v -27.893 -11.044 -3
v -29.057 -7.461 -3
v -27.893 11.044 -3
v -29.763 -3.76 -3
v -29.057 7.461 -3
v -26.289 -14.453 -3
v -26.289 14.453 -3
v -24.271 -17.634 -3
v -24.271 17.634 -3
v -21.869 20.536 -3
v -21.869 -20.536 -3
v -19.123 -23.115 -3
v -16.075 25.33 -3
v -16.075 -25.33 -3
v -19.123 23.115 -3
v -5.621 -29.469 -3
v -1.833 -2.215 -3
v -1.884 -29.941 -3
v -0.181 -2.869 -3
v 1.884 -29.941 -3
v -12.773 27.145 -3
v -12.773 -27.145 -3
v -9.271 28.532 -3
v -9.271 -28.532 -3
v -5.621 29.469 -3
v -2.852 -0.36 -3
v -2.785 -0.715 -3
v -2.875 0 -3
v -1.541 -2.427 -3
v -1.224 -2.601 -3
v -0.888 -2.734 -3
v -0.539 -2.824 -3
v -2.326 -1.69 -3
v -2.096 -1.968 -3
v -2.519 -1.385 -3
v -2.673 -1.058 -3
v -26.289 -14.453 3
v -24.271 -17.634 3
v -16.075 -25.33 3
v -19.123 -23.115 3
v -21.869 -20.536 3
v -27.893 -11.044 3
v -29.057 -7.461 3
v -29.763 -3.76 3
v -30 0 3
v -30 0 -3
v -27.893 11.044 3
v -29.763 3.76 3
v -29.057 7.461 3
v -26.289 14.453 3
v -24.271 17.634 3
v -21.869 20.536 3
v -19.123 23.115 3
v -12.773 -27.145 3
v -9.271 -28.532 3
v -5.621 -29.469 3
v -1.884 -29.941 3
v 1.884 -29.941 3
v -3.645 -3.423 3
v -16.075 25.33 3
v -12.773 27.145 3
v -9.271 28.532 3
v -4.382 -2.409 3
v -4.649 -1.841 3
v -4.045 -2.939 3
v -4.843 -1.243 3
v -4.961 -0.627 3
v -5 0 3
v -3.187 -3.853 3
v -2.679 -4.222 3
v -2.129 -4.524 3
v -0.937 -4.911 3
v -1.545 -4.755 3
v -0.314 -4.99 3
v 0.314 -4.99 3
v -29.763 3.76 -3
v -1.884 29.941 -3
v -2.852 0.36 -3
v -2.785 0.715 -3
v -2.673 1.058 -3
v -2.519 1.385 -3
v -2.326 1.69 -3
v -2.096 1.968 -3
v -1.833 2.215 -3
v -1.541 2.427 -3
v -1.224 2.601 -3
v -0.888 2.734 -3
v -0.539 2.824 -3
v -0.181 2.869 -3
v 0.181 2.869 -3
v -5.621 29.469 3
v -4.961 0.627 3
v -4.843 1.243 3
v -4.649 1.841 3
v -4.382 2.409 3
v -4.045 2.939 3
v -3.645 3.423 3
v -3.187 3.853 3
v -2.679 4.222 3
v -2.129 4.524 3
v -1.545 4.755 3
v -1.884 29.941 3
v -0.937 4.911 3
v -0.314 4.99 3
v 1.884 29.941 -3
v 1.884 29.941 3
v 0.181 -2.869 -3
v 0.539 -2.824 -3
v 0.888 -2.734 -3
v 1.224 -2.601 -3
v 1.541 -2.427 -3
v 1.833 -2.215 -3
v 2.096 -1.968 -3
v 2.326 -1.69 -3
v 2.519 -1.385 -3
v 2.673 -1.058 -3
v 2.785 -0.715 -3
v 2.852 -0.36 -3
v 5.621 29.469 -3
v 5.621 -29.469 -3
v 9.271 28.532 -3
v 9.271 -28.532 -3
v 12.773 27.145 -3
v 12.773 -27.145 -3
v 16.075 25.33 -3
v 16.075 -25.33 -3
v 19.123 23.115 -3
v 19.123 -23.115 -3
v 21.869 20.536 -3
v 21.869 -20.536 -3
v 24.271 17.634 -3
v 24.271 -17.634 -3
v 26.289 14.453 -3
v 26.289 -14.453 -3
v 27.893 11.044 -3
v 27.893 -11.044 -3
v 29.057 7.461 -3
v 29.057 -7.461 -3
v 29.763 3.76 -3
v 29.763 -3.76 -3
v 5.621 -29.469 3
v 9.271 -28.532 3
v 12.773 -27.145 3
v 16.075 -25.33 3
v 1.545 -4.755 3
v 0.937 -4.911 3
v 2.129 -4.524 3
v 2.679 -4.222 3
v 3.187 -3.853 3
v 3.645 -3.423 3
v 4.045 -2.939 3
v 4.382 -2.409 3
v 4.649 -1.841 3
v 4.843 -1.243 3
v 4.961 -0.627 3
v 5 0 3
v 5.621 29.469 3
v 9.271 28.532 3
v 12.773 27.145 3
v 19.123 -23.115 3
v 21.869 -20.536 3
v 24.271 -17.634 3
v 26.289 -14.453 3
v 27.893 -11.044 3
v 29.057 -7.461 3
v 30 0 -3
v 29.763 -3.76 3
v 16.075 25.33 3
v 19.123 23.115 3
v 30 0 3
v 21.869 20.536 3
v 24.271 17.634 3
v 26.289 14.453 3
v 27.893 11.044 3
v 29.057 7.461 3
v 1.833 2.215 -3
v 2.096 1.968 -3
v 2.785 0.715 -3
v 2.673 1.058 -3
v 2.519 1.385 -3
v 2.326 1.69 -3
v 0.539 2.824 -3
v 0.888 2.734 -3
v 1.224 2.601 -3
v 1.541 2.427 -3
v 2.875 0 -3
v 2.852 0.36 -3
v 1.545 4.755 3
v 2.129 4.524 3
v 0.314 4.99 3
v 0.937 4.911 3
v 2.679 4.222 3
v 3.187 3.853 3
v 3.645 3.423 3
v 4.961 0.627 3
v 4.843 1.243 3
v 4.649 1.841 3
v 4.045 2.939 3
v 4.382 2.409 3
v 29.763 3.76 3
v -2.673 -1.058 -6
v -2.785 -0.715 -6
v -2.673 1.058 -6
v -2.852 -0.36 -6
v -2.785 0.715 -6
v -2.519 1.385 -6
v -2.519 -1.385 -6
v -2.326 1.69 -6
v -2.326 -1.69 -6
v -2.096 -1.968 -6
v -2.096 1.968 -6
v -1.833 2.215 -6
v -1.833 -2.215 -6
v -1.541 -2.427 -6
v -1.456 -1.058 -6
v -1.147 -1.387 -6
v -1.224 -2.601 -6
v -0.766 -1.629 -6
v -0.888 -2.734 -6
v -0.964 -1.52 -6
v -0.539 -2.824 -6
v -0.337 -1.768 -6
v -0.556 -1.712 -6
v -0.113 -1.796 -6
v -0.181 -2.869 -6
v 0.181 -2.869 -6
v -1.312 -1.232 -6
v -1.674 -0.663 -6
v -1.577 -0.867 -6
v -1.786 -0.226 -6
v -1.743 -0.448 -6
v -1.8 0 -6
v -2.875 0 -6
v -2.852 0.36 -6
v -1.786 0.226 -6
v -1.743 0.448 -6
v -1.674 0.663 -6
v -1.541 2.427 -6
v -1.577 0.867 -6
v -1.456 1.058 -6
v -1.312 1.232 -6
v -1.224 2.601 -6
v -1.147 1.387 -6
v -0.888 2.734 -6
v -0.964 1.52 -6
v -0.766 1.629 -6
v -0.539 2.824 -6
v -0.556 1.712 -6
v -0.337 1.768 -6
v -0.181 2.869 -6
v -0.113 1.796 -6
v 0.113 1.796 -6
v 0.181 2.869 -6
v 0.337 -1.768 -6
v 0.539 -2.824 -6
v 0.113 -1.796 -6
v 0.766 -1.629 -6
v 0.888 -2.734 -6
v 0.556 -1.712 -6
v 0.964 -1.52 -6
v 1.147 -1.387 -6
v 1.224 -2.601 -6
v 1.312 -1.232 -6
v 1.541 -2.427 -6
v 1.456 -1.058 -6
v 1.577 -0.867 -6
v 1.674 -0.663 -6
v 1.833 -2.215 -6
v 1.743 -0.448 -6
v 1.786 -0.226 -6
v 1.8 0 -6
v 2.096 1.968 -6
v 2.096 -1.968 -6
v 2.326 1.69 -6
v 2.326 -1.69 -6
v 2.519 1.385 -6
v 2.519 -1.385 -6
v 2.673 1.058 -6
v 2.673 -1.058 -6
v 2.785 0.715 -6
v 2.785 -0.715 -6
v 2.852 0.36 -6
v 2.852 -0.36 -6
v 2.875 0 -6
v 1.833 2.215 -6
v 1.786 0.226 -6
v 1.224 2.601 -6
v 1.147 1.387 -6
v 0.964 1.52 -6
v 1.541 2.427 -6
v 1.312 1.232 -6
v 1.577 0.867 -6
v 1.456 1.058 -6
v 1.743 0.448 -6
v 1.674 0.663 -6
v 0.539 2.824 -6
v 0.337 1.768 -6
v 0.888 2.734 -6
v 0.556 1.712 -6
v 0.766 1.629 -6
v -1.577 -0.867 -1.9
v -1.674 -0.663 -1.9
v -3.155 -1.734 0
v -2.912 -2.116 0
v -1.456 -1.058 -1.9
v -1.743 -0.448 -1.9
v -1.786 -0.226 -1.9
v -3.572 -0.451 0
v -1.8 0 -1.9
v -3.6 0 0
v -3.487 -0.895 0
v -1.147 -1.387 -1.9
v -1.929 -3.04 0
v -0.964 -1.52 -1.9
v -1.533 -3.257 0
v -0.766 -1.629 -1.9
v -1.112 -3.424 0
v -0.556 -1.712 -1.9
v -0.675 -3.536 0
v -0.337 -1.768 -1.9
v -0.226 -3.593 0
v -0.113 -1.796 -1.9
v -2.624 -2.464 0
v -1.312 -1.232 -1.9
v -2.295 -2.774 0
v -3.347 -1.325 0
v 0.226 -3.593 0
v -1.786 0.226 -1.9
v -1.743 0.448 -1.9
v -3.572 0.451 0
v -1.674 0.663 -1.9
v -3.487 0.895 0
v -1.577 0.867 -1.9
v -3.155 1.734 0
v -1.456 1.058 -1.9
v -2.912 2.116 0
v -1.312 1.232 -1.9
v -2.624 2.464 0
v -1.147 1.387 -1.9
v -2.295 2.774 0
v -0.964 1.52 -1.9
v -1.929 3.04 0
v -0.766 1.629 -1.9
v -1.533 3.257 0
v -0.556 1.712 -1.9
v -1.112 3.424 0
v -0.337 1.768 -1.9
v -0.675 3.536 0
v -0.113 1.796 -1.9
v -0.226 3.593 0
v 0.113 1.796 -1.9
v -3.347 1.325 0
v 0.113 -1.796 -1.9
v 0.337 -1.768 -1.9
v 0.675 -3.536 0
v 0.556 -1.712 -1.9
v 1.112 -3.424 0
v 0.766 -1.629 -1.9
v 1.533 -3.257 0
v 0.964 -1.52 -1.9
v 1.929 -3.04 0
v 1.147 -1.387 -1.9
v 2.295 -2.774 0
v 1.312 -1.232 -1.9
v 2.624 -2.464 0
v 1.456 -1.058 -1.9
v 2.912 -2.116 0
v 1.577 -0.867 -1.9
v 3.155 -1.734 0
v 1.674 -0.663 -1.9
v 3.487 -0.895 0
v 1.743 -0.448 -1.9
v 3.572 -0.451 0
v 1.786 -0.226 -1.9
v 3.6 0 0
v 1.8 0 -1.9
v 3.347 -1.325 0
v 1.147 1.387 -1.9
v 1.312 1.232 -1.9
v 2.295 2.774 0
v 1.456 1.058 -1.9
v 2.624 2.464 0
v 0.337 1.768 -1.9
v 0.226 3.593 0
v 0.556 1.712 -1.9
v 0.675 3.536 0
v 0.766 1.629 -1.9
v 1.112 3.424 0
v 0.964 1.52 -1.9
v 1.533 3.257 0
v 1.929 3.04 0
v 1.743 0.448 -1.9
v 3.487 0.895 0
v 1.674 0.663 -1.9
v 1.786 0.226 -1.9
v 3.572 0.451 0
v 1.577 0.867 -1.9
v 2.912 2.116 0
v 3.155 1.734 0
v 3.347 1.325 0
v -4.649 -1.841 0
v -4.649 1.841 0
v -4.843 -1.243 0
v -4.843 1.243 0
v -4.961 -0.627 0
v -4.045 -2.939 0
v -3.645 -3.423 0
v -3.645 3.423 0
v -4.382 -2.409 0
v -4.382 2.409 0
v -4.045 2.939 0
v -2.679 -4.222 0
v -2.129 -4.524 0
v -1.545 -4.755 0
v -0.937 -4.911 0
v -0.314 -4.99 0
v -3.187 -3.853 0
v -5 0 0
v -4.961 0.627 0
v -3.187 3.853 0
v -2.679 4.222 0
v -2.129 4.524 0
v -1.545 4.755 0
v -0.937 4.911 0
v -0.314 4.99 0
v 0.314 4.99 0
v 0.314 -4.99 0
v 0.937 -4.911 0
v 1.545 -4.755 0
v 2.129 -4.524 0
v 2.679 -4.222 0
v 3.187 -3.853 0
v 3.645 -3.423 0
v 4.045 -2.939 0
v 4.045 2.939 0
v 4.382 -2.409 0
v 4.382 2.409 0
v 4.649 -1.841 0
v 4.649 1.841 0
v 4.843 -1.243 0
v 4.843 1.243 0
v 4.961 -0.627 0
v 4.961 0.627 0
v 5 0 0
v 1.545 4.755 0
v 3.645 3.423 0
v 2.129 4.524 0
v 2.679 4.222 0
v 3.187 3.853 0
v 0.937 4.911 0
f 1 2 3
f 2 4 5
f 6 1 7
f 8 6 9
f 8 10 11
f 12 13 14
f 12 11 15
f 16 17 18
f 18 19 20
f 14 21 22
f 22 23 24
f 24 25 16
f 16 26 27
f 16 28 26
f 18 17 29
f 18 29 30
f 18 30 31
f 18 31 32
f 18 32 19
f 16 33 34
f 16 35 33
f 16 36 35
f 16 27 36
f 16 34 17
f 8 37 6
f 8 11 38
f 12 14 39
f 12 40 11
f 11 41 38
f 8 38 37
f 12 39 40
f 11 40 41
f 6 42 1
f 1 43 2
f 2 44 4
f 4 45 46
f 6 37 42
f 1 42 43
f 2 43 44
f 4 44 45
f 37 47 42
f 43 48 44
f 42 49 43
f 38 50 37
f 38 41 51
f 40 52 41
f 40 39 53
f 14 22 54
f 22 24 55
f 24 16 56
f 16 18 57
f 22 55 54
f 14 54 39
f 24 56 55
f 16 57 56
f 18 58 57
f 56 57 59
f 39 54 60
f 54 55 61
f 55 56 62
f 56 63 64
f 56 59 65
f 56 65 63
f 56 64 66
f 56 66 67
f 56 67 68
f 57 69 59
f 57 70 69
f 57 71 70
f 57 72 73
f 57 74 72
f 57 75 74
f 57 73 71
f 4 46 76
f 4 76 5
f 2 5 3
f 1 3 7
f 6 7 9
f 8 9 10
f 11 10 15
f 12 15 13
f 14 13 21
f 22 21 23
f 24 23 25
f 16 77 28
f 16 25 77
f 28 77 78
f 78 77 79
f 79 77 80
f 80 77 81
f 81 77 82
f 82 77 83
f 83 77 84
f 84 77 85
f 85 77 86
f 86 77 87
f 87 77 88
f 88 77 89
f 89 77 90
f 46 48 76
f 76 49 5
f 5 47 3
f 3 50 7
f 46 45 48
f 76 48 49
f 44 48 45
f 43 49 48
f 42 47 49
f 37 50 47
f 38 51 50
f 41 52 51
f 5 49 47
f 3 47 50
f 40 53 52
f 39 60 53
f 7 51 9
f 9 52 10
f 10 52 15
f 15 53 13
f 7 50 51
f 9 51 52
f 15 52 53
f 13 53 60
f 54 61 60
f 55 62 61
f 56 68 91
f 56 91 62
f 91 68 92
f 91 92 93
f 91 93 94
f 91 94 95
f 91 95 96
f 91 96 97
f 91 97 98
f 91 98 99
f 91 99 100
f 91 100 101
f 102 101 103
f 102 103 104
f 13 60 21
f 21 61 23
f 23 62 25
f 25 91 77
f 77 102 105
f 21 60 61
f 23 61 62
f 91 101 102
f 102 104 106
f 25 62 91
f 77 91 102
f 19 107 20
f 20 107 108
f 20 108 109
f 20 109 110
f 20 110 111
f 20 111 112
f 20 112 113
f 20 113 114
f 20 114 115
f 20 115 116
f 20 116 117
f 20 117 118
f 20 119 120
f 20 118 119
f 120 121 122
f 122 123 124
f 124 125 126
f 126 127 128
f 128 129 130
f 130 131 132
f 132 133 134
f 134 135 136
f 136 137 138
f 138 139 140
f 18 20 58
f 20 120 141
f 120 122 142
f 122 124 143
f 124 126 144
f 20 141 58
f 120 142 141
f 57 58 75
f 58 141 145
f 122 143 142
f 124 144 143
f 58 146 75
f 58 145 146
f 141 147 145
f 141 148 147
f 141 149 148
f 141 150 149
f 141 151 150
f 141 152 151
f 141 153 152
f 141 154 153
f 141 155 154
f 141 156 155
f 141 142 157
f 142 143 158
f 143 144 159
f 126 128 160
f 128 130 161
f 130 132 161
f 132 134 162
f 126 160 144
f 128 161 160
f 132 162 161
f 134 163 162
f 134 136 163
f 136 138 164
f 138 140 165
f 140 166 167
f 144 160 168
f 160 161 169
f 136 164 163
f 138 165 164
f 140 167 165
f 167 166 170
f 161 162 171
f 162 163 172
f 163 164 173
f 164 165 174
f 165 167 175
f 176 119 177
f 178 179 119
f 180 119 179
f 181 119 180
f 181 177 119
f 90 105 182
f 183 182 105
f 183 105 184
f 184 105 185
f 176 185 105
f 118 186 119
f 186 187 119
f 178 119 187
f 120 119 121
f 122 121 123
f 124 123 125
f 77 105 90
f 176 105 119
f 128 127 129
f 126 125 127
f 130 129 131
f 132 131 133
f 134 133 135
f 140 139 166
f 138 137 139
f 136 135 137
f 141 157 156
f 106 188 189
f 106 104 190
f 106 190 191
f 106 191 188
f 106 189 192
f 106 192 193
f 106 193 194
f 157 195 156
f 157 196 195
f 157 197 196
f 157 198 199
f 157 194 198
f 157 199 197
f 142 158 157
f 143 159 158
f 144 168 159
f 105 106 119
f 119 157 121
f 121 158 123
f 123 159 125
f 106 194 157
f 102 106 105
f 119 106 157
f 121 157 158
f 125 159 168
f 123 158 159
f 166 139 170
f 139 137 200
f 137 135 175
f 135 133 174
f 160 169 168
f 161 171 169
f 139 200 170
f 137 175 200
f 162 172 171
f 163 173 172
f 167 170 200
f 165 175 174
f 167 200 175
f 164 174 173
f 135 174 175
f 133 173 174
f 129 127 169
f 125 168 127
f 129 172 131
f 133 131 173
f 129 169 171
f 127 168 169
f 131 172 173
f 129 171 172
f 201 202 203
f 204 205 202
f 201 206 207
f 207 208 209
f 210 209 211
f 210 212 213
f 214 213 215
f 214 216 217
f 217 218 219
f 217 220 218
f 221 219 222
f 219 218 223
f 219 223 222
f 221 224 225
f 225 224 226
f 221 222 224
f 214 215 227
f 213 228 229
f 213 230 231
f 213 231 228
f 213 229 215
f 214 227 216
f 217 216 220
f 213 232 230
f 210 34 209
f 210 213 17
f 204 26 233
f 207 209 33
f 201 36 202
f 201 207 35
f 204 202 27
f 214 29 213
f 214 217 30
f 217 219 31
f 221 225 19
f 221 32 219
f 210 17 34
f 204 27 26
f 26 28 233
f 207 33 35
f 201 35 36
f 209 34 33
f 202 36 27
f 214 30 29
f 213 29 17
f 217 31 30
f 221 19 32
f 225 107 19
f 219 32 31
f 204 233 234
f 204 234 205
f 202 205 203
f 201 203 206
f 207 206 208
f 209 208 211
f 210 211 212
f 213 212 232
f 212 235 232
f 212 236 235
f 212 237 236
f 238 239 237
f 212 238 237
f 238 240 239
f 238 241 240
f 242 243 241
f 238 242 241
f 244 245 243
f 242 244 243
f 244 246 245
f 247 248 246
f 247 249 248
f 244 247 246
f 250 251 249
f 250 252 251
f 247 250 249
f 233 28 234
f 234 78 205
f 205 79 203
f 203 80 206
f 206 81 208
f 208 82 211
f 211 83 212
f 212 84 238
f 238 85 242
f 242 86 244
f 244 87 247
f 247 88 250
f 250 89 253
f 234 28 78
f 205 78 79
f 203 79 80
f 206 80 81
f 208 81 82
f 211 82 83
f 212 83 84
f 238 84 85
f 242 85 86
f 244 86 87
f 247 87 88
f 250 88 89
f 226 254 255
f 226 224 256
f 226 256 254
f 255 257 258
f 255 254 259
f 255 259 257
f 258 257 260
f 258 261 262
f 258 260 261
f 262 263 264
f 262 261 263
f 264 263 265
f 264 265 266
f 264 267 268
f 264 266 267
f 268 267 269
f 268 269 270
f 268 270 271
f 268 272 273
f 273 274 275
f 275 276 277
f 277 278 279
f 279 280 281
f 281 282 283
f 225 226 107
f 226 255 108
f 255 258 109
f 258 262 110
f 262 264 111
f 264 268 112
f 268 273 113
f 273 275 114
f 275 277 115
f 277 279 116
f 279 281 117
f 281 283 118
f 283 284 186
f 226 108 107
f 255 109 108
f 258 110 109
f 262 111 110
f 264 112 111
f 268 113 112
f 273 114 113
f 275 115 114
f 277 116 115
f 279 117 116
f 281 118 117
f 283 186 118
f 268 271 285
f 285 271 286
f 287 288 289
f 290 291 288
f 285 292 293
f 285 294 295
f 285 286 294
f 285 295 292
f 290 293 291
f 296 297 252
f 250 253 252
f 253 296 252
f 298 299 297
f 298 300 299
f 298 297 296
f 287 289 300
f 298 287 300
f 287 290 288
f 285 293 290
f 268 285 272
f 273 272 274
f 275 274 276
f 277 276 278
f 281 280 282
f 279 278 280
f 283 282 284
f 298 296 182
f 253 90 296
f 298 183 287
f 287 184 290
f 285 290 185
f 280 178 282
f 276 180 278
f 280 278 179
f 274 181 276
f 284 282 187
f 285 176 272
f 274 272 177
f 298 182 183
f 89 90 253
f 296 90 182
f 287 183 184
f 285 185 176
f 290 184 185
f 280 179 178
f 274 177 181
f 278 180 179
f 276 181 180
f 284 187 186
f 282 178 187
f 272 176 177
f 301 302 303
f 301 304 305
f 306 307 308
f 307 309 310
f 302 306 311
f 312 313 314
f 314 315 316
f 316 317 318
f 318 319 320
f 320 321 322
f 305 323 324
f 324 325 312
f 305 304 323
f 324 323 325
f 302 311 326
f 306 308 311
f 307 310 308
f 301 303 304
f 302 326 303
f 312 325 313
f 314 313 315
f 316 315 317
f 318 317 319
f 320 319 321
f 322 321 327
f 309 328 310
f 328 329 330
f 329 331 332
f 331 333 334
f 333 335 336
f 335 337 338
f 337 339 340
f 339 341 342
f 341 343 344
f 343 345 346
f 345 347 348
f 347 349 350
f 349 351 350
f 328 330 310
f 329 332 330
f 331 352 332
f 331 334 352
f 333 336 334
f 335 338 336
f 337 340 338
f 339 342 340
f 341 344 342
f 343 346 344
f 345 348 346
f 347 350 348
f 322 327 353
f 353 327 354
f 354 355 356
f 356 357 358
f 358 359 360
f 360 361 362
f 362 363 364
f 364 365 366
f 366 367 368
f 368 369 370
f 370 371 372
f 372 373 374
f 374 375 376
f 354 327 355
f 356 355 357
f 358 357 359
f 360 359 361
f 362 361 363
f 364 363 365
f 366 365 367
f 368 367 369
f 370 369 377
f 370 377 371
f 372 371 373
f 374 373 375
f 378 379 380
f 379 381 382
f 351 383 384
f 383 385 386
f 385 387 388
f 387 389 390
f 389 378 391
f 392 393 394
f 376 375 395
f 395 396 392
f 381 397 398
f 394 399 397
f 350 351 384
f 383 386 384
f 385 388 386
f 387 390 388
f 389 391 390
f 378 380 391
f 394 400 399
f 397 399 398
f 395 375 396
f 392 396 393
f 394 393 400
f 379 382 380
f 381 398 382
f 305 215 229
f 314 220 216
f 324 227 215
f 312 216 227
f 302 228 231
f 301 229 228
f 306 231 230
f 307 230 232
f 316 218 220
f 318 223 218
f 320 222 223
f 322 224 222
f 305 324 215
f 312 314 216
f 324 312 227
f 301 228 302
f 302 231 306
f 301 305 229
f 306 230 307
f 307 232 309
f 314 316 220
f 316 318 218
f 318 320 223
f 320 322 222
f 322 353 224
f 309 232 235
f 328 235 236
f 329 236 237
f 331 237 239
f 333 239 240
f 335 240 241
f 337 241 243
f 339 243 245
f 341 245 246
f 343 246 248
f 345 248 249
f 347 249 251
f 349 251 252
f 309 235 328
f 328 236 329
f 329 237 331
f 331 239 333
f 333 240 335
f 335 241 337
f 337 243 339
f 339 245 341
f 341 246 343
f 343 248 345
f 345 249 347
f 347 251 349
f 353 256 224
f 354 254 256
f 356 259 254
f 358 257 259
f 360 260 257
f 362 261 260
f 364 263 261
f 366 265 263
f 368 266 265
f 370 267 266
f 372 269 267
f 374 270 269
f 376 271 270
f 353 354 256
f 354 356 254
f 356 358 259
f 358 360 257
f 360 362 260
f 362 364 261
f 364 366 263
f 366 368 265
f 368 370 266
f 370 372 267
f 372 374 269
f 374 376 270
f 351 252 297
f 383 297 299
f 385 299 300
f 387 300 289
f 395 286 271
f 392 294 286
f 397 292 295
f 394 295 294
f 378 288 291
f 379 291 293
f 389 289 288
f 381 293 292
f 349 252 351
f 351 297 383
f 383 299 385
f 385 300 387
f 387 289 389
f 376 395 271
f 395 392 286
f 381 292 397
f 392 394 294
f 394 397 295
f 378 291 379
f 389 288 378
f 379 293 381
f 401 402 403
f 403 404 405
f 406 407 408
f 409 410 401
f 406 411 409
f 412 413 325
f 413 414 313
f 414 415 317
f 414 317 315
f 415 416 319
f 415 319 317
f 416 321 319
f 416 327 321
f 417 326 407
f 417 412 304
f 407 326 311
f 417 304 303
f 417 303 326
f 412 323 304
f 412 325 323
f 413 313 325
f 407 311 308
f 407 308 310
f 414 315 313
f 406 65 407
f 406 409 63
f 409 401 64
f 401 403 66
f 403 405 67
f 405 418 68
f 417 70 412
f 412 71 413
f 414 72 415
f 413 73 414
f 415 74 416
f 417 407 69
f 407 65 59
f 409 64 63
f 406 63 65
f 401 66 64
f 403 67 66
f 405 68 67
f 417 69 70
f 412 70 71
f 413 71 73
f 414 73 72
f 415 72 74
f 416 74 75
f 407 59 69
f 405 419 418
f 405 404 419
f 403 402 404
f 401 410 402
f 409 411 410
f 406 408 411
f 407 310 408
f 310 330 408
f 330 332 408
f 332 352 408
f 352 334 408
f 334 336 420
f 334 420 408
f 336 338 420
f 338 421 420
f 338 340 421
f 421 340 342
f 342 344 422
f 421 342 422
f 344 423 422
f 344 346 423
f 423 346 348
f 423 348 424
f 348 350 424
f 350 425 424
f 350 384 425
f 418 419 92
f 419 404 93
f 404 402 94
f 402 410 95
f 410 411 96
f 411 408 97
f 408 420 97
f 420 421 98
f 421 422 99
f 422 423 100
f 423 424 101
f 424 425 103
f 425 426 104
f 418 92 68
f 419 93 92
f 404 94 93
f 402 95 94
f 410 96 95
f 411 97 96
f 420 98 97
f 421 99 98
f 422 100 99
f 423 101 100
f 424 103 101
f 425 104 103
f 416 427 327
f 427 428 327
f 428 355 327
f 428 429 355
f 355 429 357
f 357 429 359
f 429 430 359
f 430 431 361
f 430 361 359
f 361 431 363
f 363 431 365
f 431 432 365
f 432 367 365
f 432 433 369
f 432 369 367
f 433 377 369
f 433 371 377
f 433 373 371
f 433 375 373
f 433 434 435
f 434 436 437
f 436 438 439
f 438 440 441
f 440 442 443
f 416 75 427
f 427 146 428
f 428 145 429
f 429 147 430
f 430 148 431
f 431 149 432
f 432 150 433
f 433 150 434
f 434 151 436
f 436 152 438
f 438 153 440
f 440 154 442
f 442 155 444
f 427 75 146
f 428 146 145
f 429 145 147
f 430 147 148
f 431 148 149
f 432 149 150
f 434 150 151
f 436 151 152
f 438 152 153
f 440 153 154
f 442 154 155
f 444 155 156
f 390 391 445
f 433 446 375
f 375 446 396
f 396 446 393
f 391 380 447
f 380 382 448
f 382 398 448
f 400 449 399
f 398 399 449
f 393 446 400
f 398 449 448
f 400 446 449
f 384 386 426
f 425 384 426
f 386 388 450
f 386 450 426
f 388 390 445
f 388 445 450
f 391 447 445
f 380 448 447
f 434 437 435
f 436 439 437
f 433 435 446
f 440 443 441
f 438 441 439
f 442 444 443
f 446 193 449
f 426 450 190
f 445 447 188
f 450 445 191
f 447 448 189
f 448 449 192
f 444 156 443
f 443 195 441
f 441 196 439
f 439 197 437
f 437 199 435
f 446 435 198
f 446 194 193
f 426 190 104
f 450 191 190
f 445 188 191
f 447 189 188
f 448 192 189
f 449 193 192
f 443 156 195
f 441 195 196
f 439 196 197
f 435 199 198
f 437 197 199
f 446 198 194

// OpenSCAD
$fn = 50;

difference() {
	union() {
		translate(v = [0, 0, -3.0]) {
			cylinder(h = 6, r = 30.0);
		}
		#translate(v = [0, 0, -6.0]) {
			cylinder(h = 6, r = 2.875);
		}
	}
	union() {
		translate(v = [0, 0, 0]) {
			rotate(a = [0, 0, 0]) {
				difference() {
					union() {
						translate(v = [0, 0, -6.0]) {
							cylinder(h = 6, r = 1.5);
						}
						translate(v = [0, 0, -1.9]) {
							cylinder(h = 1.9, r1 = 1.8, r2 = 3.6);
						}
						translate(v = [0, 0, -6.0]) {
							cylinder(h = 6, r = 1.8);
						}
						translate(v = [0, 0, -6.0]) {
							cylinder(h = 6, r = 1.5);
						}
					}
					union();
				}
			}
		}
		#cylinder(h = 3, r = 5.0);
	}
}
